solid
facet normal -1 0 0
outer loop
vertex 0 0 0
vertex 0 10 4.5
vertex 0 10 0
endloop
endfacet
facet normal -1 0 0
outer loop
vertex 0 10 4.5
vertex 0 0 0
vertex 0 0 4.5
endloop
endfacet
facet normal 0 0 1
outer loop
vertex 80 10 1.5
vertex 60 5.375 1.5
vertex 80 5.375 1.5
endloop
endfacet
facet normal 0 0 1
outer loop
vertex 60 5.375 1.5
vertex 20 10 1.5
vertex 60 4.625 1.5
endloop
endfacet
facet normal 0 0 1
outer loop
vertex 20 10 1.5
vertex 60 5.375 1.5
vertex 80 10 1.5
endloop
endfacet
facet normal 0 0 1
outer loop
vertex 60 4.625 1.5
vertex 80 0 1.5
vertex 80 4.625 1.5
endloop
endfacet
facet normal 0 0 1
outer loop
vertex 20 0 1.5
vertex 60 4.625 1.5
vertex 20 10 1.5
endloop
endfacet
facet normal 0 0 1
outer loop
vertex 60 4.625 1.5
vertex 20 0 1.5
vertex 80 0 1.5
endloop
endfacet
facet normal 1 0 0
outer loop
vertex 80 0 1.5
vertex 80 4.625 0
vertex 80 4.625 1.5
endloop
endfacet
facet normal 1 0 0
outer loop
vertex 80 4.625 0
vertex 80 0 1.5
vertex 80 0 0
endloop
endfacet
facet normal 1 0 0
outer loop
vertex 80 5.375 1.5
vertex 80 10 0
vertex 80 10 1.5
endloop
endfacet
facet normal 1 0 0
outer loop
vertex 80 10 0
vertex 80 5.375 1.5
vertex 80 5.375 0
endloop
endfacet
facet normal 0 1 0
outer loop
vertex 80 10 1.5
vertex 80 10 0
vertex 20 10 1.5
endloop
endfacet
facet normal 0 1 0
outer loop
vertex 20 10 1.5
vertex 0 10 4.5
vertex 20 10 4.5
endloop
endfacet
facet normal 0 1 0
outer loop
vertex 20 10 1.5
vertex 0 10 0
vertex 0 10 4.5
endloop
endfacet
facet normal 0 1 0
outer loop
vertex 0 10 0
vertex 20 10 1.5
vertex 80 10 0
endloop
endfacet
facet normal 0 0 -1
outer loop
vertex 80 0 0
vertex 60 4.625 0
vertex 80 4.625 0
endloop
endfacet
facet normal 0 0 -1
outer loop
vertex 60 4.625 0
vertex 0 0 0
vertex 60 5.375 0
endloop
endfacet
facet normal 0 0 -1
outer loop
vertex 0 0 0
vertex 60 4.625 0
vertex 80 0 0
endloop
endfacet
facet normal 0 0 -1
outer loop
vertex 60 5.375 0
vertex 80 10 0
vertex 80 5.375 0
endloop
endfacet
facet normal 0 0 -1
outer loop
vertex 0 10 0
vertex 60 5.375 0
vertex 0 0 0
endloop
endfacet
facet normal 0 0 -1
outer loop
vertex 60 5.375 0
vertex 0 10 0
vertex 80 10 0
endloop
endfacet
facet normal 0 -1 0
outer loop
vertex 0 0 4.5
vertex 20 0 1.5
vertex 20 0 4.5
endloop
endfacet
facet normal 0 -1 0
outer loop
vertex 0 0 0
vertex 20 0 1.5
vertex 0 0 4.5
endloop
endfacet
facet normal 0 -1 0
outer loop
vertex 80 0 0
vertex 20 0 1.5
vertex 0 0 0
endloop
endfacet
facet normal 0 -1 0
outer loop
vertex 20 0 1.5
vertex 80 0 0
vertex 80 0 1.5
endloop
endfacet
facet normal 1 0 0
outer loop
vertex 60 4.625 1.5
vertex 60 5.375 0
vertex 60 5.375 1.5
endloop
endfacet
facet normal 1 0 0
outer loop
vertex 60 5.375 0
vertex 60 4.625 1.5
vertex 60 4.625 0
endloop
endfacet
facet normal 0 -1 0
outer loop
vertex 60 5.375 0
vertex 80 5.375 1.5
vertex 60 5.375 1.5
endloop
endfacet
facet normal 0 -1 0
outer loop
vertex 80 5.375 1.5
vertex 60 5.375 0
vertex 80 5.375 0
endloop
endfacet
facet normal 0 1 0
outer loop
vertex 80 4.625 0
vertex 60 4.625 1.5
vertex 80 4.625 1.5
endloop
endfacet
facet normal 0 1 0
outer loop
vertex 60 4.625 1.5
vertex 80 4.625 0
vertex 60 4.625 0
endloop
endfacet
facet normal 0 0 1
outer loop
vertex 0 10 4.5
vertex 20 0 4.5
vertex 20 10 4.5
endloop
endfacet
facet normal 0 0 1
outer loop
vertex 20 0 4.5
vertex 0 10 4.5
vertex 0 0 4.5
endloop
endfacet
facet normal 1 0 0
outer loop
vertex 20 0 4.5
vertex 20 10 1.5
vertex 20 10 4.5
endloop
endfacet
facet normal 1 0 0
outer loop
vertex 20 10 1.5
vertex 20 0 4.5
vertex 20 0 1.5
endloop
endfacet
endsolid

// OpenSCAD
WallThickness = 1.5;

BaseWidth = 80;
BaseDepth = 10;

SensorHoleDiameter = 3.3;
SensorHoleTopOffset = 2.5;

FlagHoleWidth = 0.75;
FlagHoleLength = 20;

difference() {
    cube(size=[BaseWidth, BaseDepth, WallThickness], center=false);
    translate([BaseWidth-FlagHoleLength, BaseDepth/2-FlagHoleWidth/2, 0])
    cube(size=[FlagHoleLength, FlagHoleWidth, WallThickness], center=false);
}
cube(size=[BaseDepth*2, BaseDepth, WallThickness*3], center=false);
